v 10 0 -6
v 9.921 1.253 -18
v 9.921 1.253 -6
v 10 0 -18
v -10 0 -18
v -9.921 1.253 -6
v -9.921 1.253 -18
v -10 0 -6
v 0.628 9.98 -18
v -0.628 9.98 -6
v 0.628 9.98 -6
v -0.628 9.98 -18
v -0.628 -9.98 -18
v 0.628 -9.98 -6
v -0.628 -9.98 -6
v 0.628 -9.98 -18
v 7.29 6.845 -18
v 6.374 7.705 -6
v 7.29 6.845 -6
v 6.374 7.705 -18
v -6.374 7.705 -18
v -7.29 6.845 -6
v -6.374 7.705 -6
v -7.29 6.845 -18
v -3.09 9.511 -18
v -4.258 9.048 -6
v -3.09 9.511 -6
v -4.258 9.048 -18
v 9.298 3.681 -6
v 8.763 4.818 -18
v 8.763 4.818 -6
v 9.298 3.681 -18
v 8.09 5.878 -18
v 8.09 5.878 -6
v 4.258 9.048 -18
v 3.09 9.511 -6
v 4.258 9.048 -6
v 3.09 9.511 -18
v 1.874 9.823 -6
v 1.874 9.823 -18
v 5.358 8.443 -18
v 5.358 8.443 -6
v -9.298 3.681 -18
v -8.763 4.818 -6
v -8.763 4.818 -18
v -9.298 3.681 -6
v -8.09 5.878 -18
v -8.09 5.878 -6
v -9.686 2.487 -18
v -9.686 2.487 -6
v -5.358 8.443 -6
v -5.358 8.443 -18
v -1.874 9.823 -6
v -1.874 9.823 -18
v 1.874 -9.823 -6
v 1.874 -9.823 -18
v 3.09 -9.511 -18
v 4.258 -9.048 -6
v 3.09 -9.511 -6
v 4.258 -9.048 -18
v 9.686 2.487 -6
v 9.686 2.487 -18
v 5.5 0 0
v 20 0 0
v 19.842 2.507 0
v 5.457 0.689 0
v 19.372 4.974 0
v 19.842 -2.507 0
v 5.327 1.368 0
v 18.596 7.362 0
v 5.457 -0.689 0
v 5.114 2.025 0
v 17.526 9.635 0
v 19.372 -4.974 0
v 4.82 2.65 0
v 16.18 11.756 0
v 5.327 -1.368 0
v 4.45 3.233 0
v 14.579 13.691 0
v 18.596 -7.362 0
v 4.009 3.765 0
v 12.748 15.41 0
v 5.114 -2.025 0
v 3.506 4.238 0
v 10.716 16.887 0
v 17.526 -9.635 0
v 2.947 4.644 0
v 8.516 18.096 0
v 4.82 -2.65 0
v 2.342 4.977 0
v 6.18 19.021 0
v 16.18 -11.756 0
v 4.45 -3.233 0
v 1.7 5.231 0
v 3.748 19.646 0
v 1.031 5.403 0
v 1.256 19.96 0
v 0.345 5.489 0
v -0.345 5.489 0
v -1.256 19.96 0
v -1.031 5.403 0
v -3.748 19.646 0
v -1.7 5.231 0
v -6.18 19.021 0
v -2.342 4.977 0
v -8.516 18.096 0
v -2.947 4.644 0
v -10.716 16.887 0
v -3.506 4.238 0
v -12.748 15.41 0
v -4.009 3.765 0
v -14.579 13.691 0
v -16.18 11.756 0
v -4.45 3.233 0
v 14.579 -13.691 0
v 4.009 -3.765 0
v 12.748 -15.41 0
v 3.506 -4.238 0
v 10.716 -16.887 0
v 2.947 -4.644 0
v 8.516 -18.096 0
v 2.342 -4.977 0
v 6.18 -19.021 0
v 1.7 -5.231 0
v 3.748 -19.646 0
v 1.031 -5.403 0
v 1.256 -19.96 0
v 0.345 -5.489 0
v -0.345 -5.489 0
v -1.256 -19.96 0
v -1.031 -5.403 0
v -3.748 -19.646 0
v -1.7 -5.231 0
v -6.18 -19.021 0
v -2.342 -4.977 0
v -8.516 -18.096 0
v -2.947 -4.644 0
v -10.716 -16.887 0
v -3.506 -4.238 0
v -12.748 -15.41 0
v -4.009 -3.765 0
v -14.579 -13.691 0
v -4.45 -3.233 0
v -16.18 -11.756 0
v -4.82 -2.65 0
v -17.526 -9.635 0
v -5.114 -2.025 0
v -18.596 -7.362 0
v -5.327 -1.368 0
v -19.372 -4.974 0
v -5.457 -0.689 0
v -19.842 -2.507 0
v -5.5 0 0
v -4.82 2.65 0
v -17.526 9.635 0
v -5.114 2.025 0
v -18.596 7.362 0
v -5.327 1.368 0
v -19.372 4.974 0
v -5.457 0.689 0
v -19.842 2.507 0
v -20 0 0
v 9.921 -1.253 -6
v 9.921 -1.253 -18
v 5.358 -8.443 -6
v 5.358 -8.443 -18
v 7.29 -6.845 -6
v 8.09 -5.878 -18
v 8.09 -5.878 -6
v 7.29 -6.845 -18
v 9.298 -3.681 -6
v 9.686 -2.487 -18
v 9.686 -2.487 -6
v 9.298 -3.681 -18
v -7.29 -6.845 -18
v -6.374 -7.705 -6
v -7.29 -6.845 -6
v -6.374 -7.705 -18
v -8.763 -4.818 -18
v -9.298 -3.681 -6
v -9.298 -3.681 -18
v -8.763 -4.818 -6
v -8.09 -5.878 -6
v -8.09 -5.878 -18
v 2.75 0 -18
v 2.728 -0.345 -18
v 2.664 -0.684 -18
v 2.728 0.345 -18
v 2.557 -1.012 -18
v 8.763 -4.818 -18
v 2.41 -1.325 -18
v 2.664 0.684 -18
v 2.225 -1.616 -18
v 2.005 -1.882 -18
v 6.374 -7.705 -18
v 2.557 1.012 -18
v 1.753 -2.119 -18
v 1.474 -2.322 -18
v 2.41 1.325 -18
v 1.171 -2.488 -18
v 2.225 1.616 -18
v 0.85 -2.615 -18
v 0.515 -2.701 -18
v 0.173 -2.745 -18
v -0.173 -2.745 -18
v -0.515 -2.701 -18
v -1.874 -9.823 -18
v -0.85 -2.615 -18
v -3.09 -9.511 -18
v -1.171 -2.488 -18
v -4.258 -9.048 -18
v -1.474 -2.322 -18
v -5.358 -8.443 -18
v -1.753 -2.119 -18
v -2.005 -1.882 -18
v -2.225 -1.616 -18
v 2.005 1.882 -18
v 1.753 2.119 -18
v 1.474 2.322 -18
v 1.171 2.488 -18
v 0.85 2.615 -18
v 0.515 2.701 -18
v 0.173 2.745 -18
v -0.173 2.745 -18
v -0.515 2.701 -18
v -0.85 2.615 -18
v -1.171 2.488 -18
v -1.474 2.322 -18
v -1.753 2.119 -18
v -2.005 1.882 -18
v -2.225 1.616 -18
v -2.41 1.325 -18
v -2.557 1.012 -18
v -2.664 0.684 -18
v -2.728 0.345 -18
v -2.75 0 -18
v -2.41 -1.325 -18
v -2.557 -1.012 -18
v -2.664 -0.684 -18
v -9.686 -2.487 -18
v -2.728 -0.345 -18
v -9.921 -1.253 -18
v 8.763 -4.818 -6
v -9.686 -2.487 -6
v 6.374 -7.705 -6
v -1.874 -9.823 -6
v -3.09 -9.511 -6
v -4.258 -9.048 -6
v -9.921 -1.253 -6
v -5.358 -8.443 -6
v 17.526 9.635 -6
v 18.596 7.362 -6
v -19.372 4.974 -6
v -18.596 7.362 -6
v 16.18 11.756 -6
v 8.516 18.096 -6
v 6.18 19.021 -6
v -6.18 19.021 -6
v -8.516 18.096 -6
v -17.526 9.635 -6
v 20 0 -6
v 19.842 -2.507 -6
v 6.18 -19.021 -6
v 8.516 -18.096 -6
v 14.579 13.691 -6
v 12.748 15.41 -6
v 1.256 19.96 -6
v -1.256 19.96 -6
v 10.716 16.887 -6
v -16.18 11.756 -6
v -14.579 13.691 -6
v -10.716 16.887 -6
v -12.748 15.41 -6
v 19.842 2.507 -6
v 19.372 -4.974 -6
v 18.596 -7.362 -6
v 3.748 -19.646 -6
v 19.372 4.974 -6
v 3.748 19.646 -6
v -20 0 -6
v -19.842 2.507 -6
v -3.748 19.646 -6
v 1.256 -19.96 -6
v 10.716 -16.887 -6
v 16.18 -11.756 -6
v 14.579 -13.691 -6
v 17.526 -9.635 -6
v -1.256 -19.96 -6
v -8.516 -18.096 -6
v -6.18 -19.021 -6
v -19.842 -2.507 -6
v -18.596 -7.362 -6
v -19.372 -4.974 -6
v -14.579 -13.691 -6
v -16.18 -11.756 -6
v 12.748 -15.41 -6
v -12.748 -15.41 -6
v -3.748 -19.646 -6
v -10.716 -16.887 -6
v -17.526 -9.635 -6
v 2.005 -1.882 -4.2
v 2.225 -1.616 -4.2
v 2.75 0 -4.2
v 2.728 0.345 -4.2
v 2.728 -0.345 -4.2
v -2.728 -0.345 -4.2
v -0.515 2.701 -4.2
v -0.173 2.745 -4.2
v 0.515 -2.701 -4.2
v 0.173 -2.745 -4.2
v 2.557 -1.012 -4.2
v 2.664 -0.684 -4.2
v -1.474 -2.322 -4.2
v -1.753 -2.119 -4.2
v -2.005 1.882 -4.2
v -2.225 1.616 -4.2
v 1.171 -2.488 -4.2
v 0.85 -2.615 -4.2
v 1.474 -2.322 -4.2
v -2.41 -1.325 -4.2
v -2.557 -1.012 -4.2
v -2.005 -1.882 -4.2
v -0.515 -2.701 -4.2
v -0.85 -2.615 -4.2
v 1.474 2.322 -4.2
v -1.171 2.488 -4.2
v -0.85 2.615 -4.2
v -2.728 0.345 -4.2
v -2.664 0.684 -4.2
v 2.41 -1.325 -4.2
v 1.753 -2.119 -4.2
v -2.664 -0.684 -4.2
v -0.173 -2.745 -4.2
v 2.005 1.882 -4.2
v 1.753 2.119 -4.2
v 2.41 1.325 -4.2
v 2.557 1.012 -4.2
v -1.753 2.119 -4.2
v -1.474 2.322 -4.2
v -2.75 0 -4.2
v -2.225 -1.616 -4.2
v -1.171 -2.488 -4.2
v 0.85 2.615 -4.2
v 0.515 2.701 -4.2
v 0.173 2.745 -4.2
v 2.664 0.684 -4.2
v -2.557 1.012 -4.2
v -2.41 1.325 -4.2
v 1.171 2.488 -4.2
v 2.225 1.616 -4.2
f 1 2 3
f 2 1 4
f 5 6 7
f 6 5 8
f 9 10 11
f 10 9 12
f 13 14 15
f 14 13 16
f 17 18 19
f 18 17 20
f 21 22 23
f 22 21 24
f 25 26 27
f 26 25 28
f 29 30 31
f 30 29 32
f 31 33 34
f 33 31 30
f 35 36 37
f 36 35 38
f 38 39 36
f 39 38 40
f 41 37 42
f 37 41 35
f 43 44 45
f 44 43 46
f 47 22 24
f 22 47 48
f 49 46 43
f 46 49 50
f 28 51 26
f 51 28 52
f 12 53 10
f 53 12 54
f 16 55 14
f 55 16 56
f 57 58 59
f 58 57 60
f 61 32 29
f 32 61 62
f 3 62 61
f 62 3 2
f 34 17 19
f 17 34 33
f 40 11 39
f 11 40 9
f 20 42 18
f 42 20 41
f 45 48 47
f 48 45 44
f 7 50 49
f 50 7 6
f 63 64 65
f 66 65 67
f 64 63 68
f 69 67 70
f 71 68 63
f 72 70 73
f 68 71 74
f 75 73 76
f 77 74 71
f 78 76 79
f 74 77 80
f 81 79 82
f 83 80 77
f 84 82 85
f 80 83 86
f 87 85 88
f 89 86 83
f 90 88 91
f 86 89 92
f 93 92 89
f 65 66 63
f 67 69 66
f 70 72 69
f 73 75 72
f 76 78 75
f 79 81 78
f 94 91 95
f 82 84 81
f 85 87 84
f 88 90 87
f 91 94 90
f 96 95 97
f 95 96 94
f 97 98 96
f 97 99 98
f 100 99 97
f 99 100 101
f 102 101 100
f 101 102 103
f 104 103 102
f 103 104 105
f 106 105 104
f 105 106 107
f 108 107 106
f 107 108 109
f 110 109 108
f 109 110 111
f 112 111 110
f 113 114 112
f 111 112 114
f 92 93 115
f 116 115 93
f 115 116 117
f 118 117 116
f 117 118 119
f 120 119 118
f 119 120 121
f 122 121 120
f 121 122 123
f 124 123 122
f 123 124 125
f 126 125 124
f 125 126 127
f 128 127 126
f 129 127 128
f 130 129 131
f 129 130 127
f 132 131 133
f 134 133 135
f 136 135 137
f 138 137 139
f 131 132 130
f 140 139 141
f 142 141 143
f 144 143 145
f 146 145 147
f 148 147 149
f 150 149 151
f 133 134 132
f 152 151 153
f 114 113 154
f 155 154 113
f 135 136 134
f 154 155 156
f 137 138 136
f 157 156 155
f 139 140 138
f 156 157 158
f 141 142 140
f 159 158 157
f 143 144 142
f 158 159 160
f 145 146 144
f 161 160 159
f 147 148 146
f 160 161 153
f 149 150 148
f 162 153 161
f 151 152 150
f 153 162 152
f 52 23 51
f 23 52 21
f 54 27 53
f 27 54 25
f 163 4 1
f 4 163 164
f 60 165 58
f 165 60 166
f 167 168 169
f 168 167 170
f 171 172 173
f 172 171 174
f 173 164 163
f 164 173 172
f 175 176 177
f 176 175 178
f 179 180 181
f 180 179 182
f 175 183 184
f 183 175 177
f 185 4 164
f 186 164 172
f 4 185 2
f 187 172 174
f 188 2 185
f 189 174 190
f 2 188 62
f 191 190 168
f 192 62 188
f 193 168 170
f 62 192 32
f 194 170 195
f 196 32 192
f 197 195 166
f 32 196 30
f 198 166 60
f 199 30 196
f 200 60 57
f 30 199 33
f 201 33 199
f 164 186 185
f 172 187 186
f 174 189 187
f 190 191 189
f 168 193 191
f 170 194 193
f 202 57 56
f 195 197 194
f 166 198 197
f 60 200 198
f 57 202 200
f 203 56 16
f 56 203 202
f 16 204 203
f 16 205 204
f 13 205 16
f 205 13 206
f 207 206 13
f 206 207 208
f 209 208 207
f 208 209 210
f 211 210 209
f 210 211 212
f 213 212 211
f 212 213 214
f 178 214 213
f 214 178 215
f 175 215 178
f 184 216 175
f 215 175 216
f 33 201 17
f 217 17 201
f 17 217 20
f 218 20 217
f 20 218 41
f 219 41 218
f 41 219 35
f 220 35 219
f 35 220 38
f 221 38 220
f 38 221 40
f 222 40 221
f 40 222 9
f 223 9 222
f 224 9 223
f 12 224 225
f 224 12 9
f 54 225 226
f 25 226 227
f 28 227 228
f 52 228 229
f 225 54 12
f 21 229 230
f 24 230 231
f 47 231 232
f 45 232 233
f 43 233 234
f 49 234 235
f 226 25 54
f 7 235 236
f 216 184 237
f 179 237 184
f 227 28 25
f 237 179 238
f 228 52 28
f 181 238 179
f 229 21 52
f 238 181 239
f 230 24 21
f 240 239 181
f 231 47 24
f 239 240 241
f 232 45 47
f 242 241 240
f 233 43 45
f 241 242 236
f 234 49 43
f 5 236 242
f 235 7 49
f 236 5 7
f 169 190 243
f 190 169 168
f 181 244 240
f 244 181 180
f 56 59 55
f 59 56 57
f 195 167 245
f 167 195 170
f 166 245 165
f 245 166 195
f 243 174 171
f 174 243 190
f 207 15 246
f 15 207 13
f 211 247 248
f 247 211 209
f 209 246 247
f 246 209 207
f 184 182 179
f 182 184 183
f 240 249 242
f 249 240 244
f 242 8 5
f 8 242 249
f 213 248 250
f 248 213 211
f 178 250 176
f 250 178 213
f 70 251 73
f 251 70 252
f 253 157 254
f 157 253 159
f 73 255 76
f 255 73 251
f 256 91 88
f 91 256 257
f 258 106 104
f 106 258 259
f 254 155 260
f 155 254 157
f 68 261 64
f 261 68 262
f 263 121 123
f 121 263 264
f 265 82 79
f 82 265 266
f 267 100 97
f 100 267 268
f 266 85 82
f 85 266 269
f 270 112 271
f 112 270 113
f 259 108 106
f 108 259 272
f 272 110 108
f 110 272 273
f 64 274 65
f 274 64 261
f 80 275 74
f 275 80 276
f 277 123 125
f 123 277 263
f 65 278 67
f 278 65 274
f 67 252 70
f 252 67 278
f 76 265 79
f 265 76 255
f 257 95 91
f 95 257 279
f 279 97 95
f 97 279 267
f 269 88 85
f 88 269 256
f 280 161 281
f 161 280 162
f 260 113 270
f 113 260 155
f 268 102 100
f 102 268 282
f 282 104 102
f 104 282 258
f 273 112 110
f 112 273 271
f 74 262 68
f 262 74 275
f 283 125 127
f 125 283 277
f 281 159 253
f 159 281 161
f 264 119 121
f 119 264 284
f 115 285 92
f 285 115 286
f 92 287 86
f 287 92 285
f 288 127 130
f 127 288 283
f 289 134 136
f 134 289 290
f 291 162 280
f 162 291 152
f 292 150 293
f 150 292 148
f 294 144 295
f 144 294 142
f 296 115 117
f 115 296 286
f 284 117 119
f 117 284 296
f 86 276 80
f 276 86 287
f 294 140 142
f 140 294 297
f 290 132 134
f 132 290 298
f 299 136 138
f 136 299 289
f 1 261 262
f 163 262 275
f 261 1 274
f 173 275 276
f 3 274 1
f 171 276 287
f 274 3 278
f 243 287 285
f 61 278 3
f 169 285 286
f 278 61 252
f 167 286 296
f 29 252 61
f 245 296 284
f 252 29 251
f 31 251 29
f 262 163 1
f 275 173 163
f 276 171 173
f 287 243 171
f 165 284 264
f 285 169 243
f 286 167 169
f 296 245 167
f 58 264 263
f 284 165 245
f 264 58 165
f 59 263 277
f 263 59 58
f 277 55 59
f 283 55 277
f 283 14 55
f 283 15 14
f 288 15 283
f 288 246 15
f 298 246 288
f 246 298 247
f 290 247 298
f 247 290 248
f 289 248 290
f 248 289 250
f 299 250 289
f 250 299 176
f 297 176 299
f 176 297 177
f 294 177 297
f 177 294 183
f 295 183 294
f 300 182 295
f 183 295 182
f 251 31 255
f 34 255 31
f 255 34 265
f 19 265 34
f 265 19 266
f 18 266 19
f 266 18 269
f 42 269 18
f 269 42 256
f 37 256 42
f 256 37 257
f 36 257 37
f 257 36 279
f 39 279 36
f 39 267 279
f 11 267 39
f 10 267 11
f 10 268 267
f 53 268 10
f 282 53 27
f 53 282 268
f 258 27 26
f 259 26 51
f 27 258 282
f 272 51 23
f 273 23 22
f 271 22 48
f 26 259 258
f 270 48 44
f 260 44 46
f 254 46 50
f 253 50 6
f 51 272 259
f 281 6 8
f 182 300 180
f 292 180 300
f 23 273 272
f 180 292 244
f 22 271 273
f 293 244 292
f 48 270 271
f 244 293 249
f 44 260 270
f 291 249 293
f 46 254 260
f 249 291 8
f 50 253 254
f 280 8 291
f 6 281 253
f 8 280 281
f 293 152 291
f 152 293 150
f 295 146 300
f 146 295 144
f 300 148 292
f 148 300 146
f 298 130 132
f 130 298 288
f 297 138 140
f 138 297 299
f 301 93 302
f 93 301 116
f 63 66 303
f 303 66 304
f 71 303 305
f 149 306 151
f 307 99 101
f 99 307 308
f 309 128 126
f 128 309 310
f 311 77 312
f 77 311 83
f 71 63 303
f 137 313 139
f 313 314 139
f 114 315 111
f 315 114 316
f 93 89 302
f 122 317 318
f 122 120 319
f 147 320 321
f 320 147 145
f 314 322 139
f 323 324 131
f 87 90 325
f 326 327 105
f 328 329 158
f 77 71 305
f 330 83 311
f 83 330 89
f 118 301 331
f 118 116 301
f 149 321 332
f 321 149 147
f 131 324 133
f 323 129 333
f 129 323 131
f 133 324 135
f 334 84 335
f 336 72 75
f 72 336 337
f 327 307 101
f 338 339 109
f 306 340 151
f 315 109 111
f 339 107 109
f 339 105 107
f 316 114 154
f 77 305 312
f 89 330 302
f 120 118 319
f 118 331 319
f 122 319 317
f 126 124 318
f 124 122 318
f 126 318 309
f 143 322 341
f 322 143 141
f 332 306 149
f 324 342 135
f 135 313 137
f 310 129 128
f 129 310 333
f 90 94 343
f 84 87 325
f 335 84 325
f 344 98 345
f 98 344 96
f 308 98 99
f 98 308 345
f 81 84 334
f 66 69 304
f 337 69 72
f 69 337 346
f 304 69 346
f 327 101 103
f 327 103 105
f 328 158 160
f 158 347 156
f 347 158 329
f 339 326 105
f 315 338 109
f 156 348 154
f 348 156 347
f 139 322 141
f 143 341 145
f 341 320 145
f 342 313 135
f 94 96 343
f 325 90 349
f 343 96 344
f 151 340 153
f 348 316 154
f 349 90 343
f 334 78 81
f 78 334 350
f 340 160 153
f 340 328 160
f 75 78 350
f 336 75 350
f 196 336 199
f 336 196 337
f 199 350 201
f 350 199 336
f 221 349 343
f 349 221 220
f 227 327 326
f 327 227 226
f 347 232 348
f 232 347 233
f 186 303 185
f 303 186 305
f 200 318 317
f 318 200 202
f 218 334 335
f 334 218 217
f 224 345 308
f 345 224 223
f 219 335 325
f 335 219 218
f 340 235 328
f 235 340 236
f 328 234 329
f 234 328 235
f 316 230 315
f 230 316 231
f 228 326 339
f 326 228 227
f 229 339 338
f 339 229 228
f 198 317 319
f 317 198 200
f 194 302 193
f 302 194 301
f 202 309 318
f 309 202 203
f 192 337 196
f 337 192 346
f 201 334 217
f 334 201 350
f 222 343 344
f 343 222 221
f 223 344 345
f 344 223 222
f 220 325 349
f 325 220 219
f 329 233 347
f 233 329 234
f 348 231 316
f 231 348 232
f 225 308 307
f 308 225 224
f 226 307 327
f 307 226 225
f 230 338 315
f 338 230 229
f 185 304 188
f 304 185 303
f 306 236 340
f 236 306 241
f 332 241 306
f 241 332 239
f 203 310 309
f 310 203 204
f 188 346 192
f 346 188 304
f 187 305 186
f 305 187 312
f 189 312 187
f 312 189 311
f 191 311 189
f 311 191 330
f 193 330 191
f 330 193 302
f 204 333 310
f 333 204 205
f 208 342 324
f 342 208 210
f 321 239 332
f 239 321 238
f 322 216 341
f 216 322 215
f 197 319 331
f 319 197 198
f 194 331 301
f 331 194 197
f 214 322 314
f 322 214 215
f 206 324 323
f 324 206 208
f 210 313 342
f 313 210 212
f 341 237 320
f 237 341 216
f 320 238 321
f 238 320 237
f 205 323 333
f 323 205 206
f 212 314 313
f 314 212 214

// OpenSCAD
$fn = 50;


difference() {
	union() {
		translate(v = [0, 0, -18.0000000000]) {
			cylinder(h = 18, r = 10.0000000000);
		}
		translate(v = [0, 0, -6.0000000000]) {
			cylinder(h = 6, r = 20.0000000000);
		}
	}
	union() {
		translate(v = [0, 0, 0]) {
			rotate(a = [0, 0, 0]) {
				difference() {
					union() {
						#translate(v = [0, 0, -18.0000000000]) {
							cylinder(h = 18, r = 2.2500000000);
						}
						#translate(v = [0, 0, -4.2000000000]) {
							cylinder(h = 4.2000000000, r1 = 2.7500000000, r2 = 5.5000000000);
						}
						#translate(v = [0, 0, -18.0000000000]) {
							cylinder(h = 18, r = 2.7500000000);
						}
						#translate(v = [0, 0, -18.0000000000]) {
							cylinder(h = 18, r = 2.2500000000);
						}
					}
					union();
				}
			}
		}
	}
}
